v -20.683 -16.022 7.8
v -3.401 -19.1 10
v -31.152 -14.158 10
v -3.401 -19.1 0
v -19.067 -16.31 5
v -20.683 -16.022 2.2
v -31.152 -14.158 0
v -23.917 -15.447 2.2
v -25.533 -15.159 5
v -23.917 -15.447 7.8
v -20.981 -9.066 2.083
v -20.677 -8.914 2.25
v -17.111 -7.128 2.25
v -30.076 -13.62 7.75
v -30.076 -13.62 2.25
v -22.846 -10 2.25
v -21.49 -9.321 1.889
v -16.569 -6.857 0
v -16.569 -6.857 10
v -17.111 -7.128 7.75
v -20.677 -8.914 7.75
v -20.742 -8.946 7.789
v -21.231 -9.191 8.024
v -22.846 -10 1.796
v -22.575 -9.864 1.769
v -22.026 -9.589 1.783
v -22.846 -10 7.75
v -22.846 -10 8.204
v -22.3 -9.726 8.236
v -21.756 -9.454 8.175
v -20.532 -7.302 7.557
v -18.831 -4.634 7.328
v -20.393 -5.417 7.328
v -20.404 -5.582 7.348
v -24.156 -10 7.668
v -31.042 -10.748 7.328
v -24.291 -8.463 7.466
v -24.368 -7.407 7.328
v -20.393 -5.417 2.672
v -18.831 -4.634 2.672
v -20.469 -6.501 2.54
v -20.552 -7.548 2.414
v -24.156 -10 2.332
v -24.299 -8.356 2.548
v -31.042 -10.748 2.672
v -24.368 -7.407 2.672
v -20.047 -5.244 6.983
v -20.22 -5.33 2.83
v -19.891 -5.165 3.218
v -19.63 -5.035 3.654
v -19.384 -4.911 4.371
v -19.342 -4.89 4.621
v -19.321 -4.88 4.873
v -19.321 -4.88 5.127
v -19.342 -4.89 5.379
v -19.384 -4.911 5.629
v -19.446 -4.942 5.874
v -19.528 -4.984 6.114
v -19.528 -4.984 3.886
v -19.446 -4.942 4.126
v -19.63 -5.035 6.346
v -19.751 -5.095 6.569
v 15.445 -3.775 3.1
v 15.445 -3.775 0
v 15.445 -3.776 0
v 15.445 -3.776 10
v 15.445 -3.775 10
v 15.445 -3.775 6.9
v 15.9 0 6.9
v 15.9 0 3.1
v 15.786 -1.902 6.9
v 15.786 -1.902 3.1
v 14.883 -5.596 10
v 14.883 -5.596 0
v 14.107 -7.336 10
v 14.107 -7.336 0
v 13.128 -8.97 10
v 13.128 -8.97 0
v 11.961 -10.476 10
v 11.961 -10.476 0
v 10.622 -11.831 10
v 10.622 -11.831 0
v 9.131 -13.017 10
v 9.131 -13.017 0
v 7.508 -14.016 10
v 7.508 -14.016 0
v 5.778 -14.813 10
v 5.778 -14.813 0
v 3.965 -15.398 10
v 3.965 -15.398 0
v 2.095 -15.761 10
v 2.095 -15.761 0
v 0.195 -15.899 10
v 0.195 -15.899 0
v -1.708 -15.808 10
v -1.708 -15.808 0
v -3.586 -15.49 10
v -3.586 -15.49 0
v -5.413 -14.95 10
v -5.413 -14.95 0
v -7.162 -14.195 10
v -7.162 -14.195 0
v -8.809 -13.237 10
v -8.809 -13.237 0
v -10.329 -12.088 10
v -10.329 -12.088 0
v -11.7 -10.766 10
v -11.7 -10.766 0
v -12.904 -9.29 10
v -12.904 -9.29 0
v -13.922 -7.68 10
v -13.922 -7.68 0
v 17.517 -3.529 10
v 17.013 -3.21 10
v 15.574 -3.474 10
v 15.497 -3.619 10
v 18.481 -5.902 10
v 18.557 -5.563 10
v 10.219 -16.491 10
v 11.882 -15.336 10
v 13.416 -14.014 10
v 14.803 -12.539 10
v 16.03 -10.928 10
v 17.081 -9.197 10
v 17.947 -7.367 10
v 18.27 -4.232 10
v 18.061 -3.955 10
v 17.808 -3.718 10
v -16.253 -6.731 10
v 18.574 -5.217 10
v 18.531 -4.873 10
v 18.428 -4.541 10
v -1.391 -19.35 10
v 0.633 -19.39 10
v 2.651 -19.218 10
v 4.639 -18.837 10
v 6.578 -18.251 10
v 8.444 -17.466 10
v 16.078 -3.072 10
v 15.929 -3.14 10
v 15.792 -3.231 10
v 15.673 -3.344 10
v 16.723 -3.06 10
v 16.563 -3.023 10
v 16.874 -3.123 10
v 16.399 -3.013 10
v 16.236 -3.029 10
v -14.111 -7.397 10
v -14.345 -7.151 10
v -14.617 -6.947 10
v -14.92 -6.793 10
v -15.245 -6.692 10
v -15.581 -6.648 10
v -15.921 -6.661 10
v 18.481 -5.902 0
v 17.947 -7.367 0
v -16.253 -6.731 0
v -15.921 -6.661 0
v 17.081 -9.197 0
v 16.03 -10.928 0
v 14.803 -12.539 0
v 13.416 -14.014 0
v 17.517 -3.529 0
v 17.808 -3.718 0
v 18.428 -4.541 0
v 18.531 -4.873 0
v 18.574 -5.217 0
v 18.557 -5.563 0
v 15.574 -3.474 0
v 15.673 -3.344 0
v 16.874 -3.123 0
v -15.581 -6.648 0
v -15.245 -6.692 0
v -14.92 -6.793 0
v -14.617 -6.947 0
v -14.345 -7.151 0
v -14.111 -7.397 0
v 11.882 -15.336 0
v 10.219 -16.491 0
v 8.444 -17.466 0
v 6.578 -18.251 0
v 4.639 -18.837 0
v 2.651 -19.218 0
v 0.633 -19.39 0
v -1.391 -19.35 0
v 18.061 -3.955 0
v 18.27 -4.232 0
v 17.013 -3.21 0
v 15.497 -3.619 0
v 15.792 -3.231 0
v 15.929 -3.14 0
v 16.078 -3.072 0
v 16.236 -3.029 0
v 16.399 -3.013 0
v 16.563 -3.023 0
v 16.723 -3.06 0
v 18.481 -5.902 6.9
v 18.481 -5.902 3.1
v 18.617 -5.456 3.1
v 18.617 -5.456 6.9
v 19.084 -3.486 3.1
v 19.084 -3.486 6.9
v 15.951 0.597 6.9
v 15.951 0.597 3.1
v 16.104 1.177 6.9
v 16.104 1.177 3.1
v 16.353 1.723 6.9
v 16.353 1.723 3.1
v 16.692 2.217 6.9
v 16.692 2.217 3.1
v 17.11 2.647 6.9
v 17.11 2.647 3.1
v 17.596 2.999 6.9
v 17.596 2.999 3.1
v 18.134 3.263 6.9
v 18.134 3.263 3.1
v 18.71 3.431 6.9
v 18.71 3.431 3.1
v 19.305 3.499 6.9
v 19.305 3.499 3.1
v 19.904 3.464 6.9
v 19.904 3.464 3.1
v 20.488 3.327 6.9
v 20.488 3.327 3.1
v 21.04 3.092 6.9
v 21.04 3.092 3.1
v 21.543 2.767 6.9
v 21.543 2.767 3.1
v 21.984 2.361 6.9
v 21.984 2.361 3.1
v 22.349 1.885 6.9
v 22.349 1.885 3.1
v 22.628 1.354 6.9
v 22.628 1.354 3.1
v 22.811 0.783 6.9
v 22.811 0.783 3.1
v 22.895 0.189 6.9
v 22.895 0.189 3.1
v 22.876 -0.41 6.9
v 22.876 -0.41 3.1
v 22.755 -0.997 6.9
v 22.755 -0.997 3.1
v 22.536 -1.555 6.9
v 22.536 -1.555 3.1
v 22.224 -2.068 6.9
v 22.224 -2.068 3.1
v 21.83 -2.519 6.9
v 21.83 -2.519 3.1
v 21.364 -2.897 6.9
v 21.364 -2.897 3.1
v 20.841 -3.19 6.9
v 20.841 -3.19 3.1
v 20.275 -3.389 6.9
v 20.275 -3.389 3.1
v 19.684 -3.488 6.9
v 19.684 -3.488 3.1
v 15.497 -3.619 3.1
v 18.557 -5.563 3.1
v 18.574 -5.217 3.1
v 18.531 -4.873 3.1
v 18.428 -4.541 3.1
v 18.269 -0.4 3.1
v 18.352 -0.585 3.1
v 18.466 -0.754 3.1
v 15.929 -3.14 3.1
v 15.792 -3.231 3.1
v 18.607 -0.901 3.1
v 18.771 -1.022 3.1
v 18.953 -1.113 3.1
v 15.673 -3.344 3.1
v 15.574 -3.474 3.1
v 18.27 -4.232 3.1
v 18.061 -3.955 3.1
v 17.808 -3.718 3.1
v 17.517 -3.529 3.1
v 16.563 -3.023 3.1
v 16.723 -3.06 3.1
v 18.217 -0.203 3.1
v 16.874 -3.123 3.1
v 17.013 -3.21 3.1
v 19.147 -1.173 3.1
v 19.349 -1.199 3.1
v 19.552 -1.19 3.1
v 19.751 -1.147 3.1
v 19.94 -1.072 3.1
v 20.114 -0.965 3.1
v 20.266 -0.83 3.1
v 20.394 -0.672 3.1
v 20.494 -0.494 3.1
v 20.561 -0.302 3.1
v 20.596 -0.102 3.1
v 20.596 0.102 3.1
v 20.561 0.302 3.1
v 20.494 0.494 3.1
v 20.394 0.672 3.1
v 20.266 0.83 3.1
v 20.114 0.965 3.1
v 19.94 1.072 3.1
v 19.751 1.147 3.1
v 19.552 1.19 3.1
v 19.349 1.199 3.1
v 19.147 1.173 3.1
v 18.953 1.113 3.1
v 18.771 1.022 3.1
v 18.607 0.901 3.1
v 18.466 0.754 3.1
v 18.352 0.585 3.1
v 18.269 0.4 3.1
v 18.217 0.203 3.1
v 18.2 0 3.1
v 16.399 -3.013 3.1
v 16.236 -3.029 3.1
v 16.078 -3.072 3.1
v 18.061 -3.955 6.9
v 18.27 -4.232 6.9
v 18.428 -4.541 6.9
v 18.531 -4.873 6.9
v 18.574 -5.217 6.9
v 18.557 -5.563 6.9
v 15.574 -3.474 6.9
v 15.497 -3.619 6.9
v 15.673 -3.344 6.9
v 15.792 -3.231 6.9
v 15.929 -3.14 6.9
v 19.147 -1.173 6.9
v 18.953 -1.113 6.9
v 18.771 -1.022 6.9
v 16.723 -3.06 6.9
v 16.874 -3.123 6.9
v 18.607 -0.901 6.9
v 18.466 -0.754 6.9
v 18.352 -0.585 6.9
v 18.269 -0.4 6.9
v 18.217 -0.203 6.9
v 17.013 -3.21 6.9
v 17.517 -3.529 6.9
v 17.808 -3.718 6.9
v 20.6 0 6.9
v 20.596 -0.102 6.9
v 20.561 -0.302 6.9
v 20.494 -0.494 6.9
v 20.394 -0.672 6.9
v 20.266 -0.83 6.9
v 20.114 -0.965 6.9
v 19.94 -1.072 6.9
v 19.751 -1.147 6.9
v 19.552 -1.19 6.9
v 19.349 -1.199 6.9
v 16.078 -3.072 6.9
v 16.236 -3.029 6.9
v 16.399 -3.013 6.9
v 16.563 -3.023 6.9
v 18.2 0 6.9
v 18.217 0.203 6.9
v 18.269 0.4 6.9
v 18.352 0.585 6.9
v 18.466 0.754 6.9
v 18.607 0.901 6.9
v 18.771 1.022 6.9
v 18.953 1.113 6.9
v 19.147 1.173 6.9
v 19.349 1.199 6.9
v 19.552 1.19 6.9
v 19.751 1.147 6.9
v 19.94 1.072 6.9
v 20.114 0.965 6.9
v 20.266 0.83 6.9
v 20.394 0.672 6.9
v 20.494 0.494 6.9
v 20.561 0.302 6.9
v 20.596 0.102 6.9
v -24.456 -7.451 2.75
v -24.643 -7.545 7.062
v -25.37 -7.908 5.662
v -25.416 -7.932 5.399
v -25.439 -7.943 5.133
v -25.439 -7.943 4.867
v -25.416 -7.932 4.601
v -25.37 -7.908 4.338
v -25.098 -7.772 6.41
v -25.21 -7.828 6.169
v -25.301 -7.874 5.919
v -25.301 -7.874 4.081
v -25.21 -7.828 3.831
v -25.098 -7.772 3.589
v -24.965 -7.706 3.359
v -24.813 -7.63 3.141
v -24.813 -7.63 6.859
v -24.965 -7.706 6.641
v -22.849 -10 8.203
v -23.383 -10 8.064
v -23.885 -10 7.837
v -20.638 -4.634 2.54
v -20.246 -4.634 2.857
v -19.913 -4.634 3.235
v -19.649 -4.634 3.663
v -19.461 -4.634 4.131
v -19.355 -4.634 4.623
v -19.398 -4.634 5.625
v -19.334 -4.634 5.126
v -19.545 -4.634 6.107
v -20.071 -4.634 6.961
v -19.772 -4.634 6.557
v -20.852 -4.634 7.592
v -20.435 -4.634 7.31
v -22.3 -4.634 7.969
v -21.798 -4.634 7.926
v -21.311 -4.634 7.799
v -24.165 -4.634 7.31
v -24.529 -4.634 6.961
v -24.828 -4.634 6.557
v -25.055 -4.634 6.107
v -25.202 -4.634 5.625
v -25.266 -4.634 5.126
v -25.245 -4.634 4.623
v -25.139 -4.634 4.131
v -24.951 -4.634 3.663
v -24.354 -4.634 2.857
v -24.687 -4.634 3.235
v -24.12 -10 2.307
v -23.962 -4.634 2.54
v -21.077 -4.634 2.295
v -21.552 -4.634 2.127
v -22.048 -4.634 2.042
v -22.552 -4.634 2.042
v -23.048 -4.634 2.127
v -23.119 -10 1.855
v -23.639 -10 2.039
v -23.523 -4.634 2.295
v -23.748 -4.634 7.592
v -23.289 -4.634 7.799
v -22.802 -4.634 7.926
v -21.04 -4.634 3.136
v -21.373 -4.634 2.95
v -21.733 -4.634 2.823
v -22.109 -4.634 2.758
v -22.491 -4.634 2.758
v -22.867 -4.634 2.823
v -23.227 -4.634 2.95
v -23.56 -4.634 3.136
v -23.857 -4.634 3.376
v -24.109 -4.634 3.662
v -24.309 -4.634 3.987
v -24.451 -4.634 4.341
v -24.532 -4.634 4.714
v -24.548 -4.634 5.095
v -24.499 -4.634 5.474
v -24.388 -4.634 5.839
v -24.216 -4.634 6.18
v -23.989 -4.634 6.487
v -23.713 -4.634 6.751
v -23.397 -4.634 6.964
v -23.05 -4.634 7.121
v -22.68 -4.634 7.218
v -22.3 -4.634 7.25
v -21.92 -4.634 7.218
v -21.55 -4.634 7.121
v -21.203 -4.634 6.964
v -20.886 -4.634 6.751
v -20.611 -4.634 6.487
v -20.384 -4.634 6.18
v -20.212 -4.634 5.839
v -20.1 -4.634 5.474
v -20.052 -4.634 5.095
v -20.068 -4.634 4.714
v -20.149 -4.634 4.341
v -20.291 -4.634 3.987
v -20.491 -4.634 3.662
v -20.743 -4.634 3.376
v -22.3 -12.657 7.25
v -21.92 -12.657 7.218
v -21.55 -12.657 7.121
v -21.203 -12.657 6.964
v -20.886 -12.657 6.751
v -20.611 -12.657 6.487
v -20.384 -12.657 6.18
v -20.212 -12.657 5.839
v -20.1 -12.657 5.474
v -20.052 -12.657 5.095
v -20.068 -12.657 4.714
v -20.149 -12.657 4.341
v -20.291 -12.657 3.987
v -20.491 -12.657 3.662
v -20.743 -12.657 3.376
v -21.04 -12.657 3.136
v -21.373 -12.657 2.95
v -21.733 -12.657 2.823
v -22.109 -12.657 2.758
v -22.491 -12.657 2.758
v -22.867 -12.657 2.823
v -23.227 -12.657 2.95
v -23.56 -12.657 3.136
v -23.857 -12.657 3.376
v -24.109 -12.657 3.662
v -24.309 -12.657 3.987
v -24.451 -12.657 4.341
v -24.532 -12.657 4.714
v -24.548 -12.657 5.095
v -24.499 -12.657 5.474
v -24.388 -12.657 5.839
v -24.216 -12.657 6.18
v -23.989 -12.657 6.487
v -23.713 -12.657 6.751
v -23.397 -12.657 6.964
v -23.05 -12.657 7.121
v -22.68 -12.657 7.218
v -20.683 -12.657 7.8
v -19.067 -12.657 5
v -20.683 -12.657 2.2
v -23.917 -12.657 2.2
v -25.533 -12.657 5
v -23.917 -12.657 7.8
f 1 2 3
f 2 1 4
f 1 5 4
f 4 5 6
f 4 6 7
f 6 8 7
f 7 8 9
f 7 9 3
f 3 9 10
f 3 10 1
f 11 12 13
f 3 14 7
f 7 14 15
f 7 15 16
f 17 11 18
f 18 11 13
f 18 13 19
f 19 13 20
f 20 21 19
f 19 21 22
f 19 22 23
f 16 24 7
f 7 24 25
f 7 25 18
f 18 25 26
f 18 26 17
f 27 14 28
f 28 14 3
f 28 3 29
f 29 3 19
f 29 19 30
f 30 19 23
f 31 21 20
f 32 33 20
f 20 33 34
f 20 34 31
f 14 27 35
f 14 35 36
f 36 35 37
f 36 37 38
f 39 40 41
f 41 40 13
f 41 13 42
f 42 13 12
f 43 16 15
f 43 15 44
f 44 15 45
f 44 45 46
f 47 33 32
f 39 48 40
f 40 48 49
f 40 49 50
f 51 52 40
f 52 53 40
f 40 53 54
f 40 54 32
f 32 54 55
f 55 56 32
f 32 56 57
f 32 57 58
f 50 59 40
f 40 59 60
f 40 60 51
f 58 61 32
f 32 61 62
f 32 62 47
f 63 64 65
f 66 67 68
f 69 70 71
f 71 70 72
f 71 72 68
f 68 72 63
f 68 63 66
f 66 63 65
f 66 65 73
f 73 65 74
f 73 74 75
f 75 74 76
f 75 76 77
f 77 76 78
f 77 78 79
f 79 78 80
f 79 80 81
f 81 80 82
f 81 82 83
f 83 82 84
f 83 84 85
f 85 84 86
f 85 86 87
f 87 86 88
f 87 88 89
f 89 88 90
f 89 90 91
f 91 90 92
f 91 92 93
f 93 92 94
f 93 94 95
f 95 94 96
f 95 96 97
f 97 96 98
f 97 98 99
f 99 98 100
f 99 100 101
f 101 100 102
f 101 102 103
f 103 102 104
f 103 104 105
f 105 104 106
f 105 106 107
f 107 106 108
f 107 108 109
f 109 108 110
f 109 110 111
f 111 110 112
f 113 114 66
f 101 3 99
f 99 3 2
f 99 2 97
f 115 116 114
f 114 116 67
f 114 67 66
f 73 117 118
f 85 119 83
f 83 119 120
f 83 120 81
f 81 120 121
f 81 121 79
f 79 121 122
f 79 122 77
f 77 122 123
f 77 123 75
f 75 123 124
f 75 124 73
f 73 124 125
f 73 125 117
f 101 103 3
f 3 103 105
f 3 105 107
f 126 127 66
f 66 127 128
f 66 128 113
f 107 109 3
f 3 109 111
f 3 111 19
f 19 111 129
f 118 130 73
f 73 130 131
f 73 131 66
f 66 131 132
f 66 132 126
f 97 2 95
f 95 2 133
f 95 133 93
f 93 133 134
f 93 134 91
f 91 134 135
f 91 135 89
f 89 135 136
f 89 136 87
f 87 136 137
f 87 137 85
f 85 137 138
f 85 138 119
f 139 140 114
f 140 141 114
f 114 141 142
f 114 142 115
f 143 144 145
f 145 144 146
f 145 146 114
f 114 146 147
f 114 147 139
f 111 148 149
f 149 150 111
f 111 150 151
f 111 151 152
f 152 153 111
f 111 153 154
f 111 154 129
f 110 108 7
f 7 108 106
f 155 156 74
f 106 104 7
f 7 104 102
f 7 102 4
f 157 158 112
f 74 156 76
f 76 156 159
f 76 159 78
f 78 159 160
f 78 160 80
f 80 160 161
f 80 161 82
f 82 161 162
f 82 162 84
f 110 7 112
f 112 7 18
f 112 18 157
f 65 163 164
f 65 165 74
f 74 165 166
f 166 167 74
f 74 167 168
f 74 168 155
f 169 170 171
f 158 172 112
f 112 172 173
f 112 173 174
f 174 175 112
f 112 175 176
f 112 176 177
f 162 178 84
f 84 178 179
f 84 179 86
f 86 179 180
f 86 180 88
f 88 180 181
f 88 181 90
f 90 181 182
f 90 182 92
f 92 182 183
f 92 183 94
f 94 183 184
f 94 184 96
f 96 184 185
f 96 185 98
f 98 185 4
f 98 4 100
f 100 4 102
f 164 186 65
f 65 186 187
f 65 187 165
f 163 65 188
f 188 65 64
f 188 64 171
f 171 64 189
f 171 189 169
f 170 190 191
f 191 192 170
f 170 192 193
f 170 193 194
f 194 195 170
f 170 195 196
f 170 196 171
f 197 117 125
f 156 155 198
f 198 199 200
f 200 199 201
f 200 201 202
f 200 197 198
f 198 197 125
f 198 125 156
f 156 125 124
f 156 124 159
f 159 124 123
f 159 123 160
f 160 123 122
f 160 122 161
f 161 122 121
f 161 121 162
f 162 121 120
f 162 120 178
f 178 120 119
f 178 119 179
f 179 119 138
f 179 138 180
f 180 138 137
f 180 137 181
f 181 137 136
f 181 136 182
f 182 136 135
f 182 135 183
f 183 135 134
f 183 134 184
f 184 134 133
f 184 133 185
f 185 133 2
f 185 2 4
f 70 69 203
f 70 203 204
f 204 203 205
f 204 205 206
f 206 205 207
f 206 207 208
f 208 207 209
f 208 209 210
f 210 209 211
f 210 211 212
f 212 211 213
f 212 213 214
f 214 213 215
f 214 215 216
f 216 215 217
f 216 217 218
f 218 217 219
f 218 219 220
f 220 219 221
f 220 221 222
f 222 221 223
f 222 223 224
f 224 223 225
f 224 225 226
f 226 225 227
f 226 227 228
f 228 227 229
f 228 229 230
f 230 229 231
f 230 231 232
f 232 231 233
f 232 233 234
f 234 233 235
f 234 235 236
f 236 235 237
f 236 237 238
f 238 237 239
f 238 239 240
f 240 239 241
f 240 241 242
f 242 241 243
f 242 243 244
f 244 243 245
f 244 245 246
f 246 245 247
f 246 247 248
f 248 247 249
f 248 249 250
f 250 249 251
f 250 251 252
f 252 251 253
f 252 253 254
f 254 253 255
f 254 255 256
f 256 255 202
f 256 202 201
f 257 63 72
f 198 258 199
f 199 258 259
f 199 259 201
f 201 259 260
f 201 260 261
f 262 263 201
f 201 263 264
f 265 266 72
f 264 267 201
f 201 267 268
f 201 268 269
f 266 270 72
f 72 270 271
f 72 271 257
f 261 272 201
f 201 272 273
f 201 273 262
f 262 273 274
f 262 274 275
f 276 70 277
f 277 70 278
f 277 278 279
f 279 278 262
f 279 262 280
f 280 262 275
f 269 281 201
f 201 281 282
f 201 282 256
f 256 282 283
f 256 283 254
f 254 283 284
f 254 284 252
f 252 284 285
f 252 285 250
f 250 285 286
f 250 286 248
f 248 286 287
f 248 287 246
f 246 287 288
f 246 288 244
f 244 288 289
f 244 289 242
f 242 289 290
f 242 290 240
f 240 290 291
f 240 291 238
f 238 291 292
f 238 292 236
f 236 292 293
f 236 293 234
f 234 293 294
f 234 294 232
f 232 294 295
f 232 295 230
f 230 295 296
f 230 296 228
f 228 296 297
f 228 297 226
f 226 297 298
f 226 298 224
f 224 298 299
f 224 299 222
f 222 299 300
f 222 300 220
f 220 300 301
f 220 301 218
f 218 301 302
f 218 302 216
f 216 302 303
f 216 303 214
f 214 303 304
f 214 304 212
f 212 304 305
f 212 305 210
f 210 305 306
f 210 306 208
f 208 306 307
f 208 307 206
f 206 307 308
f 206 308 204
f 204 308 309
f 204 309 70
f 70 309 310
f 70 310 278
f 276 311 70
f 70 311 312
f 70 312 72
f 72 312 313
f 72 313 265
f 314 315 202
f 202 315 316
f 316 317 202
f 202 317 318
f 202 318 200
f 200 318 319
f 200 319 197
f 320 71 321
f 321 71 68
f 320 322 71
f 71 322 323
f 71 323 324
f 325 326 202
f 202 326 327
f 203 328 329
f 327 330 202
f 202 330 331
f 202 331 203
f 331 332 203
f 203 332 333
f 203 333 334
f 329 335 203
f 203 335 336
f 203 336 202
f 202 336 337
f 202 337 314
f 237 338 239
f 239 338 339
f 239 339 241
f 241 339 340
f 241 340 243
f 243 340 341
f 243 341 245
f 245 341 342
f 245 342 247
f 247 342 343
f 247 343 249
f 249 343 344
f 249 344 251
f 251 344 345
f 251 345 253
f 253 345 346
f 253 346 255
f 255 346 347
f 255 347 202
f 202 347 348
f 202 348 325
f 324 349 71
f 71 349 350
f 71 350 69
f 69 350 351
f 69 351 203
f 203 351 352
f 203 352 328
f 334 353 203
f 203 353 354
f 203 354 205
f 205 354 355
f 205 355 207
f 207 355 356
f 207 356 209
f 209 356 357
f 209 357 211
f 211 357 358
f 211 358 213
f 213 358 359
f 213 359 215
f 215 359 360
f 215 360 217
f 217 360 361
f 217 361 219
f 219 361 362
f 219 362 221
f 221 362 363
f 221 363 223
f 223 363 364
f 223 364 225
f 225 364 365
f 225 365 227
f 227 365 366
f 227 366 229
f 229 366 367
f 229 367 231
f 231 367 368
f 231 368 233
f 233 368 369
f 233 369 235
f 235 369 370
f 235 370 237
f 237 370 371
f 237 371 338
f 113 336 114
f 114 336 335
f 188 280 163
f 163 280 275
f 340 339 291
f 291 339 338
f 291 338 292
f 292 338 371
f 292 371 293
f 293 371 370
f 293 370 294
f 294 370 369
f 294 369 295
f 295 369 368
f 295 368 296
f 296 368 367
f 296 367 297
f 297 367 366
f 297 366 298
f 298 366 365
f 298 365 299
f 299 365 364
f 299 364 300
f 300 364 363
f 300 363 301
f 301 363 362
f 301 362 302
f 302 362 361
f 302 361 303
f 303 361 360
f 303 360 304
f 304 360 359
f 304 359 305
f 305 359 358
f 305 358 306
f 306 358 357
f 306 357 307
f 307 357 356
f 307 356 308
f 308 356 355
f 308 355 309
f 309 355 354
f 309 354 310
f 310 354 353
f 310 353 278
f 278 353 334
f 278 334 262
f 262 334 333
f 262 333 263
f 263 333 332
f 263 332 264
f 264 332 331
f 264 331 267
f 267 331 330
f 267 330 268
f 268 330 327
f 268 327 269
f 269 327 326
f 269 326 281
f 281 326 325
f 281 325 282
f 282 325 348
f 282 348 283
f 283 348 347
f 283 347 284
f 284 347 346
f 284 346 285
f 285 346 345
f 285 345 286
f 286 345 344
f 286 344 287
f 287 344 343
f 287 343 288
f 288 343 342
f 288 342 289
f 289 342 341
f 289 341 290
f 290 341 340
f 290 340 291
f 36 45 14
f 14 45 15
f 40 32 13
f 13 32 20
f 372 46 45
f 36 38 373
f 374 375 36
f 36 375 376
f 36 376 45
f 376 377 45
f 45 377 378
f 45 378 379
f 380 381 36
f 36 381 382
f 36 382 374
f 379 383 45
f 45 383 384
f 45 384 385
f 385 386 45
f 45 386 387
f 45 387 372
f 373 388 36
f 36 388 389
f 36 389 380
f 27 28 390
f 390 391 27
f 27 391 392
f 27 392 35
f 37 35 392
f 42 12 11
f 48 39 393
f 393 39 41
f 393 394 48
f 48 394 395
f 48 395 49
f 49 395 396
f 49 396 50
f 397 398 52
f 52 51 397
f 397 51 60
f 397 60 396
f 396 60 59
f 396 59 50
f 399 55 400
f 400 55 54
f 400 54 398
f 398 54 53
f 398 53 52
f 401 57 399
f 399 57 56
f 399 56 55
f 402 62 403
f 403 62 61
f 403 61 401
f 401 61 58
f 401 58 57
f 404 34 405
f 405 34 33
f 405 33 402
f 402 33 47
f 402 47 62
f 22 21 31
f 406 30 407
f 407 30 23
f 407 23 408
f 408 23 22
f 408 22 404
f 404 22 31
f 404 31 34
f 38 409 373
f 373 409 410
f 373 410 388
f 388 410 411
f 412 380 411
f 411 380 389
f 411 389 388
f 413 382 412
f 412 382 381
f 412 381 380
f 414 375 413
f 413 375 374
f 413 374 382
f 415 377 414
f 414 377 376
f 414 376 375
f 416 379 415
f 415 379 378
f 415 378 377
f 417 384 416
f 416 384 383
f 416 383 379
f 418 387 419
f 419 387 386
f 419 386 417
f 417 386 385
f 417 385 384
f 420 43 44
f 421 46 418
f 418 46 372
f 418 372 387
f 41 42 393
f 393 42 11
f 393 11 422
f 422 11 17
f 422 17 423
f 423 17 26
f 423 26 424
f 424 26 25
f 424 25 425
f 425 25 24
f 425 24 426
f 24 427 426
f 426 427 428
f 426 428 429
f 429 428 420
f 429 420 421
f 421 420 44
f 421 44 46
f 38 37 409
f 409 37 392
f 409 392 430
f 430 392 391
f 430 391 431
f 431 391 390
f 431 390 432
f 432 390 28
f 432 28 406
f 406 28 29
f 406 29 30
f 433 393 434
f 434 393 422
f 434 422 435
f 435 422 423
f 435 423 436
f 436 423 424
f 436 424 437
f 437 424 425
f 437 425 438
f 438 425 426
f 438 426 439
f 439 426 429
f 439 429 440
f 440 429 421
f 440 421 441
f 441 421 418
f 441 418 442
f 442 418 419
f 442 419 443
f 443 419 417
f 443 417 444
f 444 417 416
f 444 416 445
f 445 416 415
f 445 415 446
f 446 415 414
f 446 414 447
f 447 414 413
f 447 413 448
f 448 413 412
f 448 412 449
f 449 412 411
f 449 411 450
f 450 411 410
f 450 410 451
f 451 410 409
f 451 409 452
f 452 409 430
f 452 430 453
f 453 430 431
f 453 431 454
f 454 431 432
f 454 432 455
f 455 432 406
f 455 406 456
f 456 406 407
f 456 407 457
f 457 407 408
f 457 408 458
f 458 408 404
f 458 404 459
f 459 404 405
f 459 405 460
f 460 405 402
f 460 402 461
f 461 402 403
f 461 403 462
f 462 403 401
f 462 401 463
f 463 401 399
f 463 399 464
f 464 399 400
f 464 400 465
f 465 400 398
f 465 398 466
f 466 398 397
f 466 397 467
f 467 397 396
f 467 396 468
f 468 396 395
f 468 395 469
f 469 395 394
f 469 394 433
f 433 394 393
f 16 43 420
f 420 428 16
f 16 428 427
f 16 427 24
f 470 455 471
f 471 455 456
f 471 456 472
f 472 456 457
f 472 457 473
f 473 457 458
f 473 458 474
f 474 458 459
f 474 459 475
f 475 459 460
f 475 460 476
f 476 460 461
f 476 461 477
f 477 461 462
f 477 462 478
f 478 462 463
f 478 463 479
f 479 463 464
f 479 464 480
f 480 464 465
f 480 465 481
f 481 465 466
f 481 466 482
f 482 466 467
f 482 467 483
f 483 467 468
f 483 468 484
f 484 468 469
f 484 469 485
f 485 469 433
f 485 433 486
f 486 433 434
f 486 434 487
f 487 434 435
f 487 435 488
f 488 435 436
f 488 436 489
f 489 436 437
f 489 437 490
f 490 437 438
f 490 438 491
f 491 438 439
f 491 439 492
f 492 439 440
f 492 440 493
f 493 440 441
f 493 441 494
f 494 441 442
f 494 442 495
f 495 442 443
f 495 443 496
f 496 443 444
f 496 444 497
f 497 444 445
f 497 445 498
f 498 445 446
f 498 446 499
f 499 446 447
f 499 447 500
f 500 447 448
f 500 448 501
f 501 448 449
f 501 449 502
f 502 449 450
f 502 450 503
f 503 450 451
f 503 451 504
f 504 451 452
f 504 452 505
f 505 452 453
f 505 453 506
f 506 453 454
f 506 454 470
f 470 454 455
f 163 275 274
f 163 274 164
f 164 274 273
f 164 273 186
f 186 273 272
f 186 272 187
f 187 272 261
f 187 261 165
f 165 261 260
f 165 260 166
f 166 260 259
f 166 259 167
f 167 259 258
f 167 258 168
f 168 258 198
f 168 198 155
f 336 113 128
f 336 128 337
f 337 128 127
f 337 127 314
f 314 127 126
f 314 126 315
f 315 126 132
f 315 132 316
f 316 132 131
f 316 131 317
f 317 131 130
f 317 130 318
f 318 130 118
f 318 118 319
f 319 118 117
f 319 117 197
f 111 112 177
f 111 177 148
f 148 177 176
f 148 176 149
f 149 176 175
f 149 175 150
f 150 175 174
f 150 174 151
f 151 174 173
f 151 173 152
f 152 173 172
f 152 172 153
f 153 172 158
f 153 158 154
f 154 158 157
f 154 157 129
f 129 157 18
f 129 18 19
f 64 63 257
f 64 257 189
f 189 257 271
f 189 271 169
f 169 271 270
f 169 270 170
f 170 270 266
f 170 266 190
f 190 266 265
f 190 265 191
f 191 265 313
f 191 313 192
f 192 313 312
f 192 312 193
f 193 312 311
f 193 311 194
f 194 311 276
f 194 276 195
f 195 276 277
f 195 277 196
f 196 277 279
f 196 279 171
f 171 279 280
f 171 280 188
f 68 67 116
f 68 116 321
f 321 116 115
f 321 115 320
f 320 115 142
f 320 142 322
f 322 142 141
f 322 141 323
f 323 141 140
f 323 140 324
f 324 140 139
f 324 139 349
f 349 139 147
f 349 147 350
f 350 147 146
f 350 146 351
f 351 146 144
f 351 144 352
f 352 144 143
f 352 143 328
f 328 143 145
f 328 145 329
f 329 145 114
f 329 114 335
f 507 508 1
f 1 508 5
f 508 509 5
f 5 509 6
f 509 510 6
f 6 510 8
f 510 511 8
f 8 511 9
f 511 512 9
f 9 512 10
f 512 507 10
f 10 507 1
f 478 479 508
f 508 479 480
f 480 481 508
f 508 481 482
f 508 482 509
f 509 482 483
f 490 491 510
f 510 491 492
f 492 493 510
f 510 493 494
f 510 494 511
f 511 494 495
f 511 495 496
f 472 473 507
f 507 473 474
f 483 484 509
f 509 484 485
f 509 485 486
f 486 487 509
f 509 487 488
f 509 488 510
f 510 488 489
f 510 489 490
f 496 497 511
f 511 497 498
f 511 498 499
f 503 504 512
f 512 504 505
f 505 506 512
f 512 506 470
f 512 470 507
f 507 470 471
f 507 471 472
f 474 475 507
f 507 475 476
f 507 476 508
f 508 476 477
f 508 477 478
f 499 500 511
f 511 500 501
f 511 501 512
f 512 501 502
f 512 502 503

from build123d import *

# Parameters (mm, degrees)
BOSS_EXTRUDE1_DEPTH      = 10
BOSS_EXTRUDE2_DEPTH      = 1.9
BOSS_EXTRUDE2_DEPTH_BACK = 1.9
SKETCH2_R                = 3.5
SKETCH3_R                = 4
CUT_EXTRUDE1_DEPTH       = 39.727380495
SKETCH4_R                = 4
CUT_EXTRUDE2_DEPTH       = 39.727380495
SKETCH5_R                = 1.2
CUT_EXTRUDE3_DEPTH       = 3.8
SKETCH9_W                = 19.801856387
SKETCH9_H                = 10
CUT_EXTRUDE4_DEPTH       = 1
SKETCH12_W               = 14.5
SKETCH12_H               = 5.5
BOSS_EXTRUDE3_DEPTH      = 3
BOSS_EXTRUDE3_TAPER      = 8
SKETCH10_R               = 2.25
CUT_EXTRUDE5_DEPTH       = 37.680126397
FILLET1_R                = 2
FILLET2_R                = 1
CUT_EXTRUDE7_DEPTH       = 7.342905


# Read off the part's stored shape, not the designer's step: Boss-Extrude4
with BuildPart() as part:
    # Sketch1 → Boss-Extrude1 (new body)
    with BuildSketch(Plane.XY):
        with BuildLine():
            Line((-15.093376031, -5), (-32.8, -13.865042807))
            Line((-32.8, -13.865042807), (-3.400702634, -19.099613127))
            ThreePointArc((-3.400702634, -19.099613127), (12.457655656, -14.871678303), (19.4, 0))
            Line((19.4, 0), (15.9, 0))
            ThreePointArc((15.9, 0), (2.532323154, -15.697048749), (-15.093376031, -5))
        make_face()
    extrude(amount=BOSS_EXTRUDE1_DEPTH)

    # Sketch2 → Boss-Extrude2 (add, two sides: drawn at the far end of the back side and taken through both)
    with BuildSketch(Plane.XY.offset(5).offset(-BOSS_EXTRUDE2_DEPTH_BACK)):
        with Locations((19.4, 0)):
            Circle(SKETCH2_R)
    extrude(amount=BOSS_EXTRUDE2_DEPTH + BOSS_EXTRUDE2_DEPTH_BACK)

    # Sketch3 → Cut-Extrude1 (cut, through all)
    with BuildSketch(Plane.XY.offset(6.9)):
        with Locations((19.4, 0)):
            Circle(SKETCH3_R)
    extrude(amount=CUT_EXTRUDE1_DEPTH, mode=Mode.SUBTRACT)

    # Sketch4 → Cut-Extrude2 (cut, through all)
    with BuildSketch(Plane(origin=(0, 0, 3.1), x_dir=(-1, 0, 0), z_dir=(0, 0, -1))):
        with Locations((-19.4, 0)):
            Circle(SKETCH4_R)
    extrude(amount=CUT_EXTRUDE2_DEPTH, mode=Mode.SUBTRACT)

    # Sketch5 → Cut-Extrude3 (cut)
    with BuildSketch(Plane(origin=(0, 0, 3.1), x_dir=(-1, 0, 0), z_dir=(0, 0, -1))):
        with Locations((-19.4, 0)):
            Circle(SKETCH5_R)
    extrude(amount=-CUT_EXTRUDE3_DEPTH, mode=Mode.SUBTRACT)

    # Sketch9 → Cut-Extrude4 (cut)
    with BuildSketch(Plane(origin=(-1.023487263, 2.044265831, 0), x_dir=(0.8941901013439871, 0.4476874609126664, 0), z_dir=(-0.4476874609126664, 0.8941901013439871, 0))):
        with Locations((-25.63571294, -5)):
            Rectangle(SKETCH9_W, SKETCH9_H)
    extrude(amount=-CUT_EXTRUDE4_DEPTH, mode=Mode.SUBTRACT)

    # Sketch12 → Boss-Extrude3 (add)
    with BuildSketch(Plane(origin=(-0.575799802, 1.15007573, 0), x_dir=(0.894190101343987, 0.44768746091266626, 0), z_dir=(-0.4476874609126663, 0.8941901013439871, 0))):
        with Locations((-25.74136864, -5)):
            Rectangle(SKETCH12_W, SKETCH12_H)
    extrude(amount=BOSS_EXTRUDE3_DEPTH, taper=BOSS_EXTRUDE3_TAPER)

    # Boss-Extrude4 outline → Boss-Extrude4 (revolve)
    with BuildSketch(Plane(origin=(-22.3, 0, 5), x_dir=(1, 0, 0), z_dir=(0, 0, 1))):
        Polygon((0, -10), (3.25, -10), (2.968804119, -4.634462949), (0, -4.634462949), align=None)
    revolve(axis=Axis((-22.3, 0, 5), (0, 1, 0)))

    # Sketch10 → Cut-Extrude5 (cut, through all)
    with BuildSketch(Plane(origin=(-1.672257199, 0, 0), x_dir=(1, 0, 0), z_dir=(0, -1, 0))):
        with Locations(Location((-20.627742801, 5, 0), (0, 0, 90))):
            Circle(SKETCH10_R)
    extrude(amount=CUT_EXTRUDE5_DEPTH, mode=Mode.SUBTRACT)

    # Fillet1
    fillet1_edges = [part.edges().sort_by_distance(p)[0] for p in [
        (18.987628866, -3.978686975, 8.45),
        (18.987628866, -3.978686975, 1.55),
        (-14.746830764, -5.944828206, 5),
    ]]
    fillet(fillet1_edges, radius=FILLET1_R)

    # Fillet2
    fillet2_edges = [part.edges().sort_by_distance(p)[0] for p in [
        (15.803350515, -1.750460649, 8.45),
        (15.803350515, -1.750460649, 1.55),
    ]]
    fillet(fillet2_edges, radius=FILLET2_R)

    # Sketch15 → Cut-Extrude7 (cut)
    with BuildSketch(Plane(origin=(0, -20, 0), x_dir=(1, 0, 0), z_dir=(0, 1, 0))):
        Polygon((-19.066838493, -5), (-20.683419246, -2.2), (-23.916580754, -2.2), (-25.533161507, -5), (-23.916580754, -7.8), (-20.683419246, -7.8), align=None)
    extrude(amount=CUT_EXTRUDE7_DEPTH, mode=Mode.SUBTRACT)


solid = part.part
